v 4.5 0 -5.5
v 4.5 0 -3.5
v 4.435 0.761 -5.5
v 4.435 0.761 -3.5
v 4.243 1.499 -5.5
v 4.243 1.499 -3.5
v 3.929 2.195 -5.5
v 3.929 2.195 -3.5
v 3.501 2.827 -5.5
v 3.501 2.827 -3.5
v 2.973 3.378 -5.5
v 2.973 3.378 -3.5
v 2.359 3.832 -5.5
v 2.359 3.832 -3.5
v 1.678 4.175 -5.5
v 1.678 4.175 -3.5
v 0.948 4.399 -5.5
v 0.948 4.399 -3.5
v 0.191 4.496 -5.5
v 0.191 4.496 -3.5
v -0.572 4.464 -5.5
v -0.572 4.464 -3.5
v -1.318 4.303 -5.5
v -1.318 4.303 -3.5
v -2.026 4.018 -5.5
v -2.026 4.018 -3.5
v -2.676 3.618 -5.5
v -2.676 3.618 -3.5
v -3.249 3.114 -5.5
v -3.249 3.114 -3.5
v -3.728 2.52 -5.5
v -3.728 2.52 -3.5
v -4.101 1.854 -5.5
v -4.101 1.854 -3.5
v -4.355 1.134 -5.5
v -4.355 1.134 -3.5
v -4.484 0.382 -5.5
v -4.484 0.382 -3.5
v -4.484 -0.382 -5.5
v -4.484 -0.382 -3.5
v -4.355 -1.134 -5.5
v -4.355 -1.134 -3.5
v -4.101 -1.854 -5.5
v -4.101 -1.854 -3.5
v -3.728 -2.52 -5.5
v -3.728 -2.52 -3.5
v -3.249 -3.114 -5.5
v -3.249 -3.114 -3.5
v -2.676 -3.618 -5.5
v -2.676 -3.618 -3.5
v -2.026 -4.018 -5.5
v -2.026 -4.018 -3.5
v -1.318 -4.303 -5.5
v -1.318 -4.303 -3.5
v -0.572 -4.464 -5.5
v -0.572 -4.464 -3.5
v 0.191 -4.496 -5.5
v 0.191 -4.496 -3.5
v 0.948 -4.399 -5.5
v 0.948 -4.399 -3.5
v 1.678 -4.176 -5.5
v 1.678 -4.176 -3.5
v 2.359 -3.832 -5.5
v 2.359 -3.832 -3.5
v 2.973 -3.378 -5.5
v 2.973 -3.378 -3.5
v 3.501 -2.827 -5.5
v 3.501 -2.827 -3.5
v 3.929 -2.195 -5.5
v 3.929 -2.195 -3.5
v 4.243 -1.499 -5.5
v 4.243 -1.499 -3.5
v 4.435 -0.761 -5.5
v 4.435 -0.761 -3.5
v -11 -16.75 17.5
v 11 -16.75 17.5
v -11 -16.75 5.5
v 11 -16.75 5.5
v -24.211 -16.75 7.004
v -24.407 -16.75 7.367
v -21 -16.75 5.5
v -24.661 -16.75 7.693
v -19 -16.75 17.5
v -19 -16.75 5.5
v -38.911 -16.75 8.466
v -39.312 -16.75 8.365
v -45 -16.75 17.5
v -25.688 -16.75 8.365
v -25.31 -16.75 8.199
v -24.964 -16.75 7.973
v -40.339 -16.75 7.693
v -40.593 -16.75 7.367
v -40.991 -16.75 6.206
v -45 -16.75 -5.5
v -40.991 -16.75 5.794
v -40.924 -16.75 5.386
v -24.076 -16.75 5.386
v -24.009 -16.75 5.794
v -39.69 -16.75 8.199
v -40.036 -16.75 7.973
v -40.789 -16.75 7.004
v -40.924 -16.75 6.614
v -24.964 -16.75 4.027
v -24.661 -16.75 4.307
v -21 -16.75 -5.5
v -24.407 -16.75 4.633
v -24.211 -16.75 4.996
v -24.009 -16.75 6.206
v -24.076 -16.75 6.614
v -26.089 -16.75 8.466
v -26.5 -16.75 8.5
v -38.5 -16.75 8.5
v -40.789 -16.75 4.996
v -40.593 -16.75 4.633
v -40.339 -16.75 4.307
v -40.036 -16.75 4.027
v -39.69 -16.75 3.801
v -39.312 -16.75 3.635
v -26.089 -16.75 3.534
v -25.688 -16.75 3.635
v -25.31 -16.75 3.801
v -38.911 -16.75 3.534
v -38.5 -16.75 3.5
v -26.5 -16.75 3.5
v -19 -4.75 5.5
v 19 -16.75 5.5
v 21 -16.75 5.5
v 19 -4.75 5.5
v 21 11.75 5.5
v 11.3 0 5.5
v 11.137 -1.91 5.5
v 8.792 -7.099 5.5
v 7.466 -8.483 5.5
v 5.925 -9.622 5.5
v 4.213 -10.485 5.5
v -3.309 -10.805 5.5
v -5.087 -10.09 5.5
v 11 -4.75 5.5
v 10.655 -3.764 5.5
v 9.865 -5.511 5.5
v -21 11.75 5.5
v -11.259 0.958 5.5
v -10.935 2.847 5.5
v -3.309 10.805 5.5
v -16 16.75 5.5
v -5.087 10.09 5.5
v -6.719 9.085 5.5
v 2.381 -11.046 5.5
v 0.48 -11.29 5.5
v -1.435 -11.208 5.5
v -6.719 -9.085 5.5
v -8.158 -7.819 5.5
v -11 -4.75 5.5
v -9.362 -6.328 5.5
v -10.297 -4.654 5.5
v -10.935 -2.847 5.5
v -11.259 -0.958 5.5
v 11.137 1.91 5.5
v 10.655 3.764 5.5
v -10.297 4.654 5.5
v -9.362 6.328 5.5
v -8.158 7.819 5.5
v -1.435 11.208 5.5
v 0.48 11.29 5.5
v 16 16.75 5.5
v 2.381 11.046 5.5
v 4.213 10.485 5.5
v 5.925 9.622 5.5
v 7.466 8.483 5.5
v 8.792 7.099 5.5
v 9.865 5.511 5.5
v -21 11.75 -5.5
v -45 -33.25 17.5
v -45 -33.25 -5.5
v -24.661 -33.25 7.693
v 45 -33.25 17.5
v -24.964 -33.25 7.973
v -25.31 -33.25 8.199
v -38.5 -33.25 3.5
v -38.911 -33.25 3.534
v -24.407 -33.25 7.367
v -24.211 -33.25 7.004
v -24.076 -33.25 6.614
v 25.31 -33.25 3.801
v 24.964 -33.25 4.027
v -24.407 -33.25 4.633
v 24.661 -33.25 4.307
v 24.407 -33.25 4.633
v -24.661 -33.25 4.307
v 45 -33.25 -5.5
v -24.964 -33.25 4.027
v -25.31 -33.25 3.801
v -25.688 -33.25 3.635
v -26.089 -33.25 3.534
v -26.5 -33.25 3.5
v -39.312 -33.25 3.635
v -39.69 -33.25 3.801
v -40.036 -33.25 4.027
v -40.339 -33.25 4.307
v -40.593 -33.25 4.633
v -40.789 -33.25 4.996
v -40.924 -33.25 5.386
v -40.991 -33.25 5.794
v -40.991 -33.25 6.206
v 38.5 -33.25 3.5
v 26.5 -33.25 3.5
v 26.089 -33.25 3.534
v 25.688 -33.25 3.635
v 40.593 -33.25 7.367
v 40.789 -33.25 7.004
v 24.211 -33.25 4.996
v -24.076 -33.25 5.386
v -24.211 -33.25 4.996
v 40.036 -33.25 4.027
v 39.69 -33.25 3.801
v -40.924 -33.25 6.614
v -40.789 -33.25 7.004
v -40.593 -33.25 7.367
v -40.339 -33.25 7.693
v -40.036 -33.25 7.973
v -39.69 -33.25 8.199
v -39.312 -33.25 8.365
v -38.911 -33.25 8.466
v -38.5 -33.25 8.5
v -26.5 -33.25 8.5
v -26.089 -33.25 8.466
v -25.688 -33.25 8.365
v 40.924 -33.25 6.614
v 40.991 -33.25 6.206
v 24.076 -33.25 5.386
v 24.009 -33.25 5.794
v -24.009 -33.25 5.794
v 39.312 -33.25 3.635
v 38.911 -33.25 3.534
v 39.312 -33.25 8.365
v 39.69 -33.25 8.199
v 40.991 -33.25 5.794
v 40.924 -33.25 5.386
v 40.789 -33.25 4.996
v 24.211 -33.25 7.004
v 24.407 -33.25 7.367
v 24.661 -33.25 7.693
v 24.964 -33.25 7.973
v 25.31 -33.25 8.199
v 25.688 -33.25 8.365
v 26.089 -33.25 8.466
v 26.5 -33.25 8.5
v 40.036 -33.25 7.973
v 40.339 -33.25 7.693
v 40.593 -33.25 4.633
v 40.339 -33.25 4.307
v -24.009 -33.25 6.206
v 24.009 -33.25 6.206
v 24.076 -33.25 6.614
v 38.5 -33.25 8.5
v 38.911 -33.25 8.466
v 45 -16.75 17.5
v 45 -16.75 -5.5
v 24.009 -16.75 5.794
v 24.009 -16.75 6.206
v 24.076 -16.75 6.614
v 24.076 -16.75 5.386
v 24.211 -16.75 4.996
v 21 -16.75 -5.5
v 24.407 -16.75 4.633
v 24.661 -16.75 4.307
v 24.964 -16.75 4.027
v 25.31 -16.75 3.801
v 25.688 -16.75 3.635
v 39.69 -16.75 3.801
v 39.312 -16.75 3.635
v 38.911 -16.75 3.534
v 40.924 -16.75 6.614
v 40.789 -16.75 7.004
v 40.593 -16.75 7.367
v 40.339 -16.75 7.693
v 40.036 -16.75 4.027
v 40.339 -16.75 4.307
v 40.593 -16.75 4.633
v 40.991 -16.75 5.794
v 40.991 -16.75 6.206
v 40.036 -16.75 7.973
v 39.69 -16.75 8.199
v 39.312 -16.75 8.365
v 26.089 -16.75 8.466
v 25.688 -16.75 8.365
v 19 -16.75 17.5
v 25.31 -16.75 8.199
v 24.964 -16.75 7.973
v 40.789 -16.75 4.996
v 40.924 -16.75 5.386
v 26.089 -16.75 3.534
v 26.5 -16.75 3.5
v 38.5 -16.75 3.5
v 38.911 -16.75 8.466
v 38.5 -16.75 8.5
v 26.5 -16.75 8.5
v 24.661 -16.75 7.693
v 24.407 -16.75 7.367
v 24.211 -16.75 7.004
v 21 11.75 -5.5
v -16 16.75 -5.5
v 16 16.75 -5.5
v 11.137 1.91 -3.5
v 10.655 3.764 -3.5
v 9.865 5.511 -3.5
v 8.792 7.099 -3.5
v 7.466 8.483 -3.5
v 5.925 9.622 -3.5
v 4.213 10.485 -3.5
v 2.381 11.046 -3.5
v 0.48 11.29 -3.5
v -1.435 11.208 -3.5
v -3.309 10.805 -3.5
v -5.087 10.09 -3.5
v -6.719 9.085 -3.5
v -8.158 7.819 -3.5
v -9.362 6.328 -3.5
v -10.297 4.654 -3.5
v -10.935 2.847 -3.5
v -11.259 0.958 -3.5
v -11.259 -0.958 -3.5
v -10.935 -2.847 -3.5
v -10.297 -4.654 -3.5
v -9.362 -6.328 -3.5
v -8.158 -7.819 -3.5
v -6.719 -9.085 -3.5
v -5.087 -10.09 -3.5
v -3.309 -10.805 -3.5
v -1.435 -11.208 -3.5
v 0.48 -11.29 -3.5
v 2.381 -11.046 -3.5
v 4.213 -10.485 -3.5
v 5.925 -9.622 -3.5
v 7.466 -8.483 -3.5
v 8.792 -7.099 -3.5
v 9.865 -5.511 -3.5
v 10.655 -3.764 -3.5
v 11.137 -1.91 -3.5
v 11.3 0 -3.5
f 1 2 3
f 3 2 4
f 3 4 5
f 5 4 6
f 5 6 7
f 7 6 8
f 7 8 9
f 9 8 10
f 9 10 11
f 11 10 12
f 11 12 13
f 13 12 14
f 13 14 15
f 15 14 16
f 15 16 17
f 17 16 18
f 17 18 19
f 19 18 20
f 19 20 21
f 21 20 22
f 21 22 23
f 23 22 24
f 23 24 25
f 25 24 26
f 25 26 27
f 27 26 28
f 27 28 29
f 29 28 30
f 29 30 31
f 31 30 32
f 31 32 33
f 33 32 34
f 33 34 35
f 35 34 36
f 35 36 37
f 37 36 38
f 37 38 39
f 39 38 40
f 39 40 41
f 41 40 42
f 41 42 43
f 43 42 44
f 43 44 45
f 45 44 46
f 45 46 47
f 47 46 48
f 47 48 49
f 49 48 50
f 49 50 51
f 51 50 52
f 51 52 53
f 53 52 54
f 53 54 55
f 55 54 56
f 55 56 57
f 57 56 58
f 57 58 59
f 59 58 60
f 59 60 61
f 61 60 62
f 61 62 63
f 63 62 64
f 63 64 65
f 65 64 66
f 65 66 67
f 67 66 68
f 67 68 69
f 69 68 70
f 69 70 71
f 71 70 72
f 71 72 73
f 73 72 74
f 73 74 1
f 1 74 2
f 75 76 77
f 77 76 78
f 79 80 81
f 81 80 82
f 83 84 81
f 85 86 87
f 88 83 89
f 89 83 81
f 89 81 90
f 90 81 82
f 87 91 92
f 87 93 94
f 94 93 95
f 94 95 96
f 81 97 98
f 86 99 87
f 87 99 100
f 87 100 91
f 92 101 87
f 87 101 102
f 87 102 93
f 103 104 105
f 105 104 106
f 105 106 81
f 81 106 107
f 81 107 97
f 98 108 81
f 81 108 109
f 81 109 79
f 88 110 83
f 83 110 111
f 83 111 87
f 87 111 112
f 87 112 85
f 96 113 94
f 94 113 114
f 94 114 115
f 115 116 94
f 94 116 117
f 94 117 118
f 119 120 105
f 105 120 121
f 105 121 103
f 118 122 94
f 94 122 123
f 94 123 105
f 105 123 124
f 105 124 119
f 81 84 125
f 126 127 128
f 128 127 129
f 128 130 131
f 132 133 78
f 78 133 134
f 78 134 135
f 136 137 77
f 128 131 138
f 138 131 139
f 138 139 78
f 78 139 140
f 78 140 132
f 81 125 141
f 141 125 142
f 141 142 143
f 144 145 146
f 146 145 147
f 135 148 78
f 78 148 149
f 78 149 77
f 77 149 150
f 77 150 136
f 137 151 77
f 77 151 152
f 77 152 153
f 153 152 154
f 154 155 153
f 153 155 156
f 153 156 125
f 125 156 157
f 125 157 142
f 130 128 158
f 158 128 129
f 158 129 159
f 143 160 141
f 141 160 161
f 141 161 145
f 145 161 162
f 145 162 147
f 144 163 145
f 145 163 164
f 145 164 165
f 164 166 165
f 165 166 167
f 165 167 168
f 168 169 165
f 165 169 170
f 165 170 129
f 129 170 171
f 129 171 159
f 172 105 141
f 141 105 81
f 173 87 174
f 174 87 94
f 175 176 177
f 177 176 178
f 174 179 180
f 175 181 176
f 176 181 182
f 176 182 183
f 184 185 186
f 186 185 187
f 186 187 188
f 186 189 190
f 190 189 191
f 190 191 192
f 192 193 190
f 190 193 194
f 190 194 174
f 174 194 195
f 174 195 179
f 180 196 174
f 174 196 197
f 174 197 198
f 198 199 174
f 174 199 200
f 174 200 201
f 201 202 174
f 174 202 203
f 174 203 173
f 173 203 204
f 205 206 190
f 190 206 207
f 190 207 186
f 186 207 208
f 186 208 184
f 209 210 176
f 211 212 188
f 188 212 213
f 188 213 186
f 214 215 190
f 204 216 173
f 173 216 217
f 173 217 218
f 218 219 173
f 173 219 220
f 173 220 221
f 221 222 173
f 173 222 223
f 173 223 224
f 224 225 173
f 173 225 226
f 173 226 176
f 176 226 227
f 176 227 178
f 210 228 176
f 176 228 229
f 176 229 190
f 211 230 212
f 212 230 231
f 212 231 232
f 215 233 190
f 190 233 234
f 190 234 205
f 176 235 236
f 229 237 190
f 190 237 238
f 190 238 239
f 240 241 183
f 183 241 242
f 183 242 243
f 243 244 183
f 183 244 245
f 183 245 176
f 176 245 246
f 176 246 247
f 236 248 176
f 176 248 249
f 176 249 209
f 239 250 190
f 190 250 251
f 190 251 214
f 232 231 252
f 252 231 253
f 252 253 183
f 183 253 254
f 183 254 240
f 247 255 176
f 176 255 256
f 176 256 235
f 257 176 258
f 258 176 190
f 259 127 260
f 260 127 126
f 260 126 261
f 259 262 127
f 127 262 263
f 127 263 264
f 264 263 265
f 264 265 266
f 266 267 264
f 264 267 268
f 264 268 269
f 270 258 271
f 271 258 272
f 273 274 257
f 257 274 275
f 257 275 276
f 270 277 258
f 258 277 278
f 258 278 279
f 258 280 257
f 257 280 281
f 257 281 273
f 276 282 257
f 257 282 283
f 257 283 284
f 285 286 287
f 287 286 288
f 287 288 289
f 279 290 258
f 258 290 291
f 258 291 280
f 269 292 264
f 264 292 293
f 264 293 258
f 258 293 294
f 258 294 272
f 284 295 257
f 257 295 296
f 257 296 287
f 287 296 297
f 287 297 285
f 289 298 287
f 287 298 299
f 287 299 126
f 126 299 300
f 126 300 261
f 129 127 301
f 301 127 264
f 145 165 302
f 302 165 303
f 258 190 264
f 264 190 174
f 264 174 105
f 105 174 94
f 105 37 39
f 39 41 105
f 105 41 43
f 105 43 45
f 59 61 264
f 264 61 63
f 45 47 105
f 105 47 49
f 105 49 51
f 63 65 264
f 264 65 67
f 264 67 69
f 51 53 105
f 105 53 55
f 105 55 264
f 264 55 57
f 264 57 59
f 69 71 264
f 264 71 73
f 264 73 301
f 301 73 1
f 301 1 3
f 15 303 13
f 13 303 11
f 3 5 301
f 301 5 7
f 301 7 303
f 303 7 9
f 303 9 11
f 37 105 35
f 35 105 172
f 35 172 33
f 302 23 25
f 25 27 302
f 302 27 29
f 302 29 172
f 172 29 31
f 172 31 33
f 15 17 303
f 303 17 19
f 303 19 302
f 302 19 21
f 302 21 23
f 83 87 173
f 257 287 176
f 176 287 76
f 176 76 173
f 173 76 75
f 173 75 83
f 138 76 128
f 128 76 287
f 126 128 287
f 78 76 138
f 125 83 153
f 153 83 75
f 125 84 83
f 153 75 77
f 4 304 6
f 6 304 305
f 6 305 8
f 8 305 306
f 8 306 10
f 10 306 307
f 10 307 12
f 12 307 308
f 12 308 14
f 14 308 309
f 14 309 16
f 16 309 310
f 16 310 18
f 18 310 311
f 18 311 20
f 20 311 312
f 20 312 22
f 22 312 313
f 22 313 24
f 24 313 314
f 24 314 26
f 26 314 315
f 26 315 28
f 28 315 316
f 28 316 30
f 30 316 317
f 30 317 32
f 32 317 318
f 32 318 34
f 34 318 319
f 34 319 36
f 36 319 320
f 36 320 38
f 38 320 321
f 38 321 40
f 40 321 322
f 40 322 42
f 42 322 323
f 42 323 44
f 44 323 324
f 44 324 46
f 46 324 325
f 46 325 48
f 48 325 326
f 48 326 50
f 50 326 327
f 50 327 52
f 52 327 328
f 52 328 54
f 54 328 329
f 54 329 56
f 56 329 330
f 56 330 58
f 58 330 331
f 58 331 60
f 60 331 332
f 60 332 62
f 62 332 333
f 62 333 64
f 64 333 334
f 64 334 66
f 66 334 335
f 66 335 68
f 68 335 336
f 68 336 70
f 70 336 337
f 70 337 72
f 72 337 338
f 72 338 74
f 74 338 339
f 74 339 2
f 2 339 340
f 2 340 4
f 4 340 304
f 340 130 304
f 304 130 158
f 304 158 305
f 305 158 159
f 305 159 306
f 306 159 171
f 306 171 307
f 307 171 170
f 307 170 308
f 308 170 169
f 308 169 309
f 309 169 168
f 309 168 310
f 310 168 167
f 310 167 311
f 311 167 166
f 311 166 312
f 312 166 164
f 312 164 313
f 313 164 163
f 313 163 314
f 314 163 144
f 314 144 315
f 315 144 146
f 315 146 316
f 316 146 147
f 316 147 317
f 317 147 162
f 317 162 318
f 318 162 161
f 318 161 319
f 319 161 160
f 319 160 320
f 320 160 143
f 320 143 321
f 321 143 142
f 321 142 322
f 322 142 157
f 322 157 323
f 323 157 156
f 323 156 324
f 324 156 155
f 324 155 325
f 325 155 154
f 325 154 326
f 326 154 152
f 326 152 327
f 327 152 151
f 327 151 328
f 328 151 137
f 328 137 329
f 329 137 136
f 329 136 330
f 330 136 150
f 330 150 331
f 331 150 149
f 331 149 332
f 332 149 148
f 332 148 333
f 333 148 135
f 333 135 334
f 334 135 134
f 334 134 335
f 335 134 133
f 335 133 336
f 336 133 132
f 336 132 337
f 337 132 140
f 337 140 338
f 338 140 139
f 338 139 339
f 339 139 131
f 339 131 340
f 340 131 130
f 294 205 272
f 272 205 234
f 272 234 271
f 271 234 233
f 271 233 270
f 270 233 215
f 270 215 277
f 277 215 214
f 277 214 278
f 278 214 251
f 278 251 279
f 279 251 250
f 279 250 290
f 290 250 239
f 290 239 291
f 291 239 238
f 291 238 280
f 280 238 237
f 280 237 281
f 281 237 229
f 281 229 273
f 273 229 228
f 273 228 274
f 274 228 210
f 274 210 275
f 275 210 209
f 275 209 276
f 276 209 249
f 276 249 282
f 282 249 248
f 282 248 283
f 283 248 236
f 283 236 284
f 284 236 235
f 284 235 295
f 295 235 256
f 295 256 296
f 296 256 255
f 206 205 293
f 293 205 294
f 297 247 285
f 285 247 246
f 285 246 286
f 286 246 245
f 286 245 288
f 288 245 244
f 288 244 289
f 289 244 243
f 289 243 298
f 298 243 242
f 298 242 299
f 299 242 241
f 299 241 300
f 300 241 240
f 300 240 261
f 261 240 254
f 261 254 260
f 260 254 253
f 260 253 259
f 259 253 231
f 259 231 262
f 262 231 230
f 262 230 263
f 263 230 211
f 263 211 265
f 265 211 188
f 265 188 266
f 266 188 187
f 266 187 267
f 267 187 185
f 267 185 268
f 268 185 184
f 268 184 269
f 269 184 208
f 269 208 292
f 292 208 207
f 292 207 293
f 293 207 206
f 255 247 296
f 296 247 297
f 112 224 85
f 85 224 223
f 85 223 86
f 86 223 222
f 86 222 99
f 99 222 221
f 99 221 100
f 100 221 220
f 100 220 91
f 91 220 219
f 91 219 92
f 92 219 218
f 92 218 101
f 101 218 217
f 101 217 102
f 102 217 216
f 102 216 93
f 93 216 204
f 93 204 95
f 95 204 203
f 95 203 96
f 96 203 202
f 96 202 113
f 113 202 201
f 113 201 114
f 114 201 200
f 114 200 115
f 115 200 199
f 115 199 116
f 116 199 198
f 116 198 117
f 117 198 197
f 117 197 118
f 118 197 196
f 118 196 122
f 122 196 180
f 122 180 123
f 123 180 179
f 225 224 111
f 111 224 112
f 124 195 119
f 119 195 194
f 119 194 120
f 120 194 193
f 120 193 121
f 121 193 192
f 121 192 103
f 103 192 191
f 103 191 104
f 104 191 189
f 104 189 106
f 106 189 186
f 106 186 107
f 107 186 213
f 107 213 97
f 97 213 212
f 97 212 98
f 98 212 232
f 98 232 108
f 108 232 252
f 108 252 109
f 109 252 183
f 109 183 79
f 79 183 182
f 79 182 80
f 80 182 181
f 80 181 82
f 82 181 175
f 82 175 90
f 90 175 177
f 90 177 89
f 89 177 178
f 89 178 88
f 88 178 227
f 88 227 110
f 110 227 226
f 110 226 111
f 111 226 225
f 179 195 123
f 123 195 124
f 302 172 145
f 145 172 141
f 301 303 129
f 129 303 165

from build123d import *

# Parameters (mm, degrees)
CROQUIS1_W              = 42
CROQUIS1_H              = 33.5
SALIENTE_EXTRUIR1_DEPTH = 5.5
SALIENTE_EXTRUIR2_DEPTH = 12
NERVIO4_REACH           = 72.794
CROQUIS4_WALL_W         = 160.558874412
CROQUIS4_WALL_H         = 8
CROQUIS5_R              = 4.5
CORTAR_EXTRUIR1_DEPTH   = 12
CROQUIS6_R              = 11.3
CORTAR_EXTRUIR2_DEPTH   = 9
CORTAR_EXTRUIR3_DEPTH   = 70.507193872
CHAFL_N1_SIZE           = 5


with BuildPart() as part:
    # Croquis1 → Saliente-Extruir1 (new, symmetric)
    with BuildSketch(Plane.XY):
        Rectangle(CROQUIS1_W, CROQUIS1_H)
        Polygon((21, -16.75), (-21, -16.75), (-45, -16.75), (-45, -33.25), (45, -33.25), (45, -16.75), align=None)
    extrude(amount=SALIENTE_EXTRUIR1_DEPTH, both=True)

    # Croquis2 → Saliente-Extruir2 (add)
    with BuildSketch(Plane.XY.offset(5.5)):
        Polygon((-21, -16.75), (-45, -16.75), (-45, -33.25), (45, -33.25), (45, -16.75), (21, -16.75), align=None)
    extrude(amount=SALIENTE_EXTRUIR2_DEPTH)

    # Croquis4 wall → Nervio4 (add, up to next)
    with BuildSketch(Plane(origin=(15, -10.75, 11.5), x_dir=(0, -0.707106781187, 0.707106781187), z_dir=(0, -0.707106781187, -0.707106781187)), mode=Mode.PRIVATE) as nervio4_sk1:
        Rectangle(CROQUIS4_WALL_W, CROQUIS4_WALL_H)
    nervio4_tool1 = extrude(nervio4_sk1.sketch, amount=NERVIO4_REACH, mode=Mode.PRIVATE) - part.part
    nervio4 = nervio4_tool1.solids().sort_by_distance((15, -10.75, 11.5))[0]
    add(nervio4)

    # Simetría1: Nervio4 across plane
    add(nervio4.mirror(Plane(origin=(0, 0, 0), x_dir=(0, 0, 1), z_dir=(1, 0, 0))))

    # Croquis5 → Cortar-Extruir1 (cut)
    with BuildSketch(Plane.XY.offset(5.5)):
        Circle(CROQUIS5_R)
    extrude(amount=-CORTAR_EXTRUIR1_DEPTH, mode=Mode.SUBTRACT)

    # Croquis6 → Cortar-Extruir2 (cut)
    with BuildSketch(Plane.XY.offset(5.5)):
        Circle(CROQUIS6_R)
    extrude(amount=-CORTAR_EXTRUIR2_DEPTH, mode=Mode.SUBTRACT)

    # Croquis7 → Cortar-Extruir3 (cut, through all)
    with BuildSketch(Plane.XZ.offset(33.25)):
        with BuildLine():
            Line((-38.5, 8.5), (-26.5, 8.5))
            ThreePointArc((-26.5, 8.5), (-24, 6), (-26.5, 3.5))
            Line((-26.5, 3.5), (-38.5, 3.5))
            ThreePointArc((-38.5, 3.5), (-41, 6), (-38.5, 8.5))
        make_face()
        with BuildLine():
            Line((38.5, 8.5), (26.5, 8.5))
            ThreePointArc((26.5, 8.5), (24, 6), (26.5, 3.5))
            Line((26.5, 3.5), (38.5, 3.5))
            ThreePointArc((38.5, 3.5), (41, 6), (38.5, 8.5))
        make_face()
    extrude(amount=-CORTAR_EXTRUIR3_DEPTH, mode=Mode.SUBTRACT)

    # Chaflán1
    chafl_n1_edges = [part.edges().sort_by_distance(p)[0] for p in [
        (-21, 16.75, 0),
        (21, 16.75, 0),
    ]]
    chamfer(chafl_n1_edges, length=CHAFL_N1_SIZE)


solid = part.part
